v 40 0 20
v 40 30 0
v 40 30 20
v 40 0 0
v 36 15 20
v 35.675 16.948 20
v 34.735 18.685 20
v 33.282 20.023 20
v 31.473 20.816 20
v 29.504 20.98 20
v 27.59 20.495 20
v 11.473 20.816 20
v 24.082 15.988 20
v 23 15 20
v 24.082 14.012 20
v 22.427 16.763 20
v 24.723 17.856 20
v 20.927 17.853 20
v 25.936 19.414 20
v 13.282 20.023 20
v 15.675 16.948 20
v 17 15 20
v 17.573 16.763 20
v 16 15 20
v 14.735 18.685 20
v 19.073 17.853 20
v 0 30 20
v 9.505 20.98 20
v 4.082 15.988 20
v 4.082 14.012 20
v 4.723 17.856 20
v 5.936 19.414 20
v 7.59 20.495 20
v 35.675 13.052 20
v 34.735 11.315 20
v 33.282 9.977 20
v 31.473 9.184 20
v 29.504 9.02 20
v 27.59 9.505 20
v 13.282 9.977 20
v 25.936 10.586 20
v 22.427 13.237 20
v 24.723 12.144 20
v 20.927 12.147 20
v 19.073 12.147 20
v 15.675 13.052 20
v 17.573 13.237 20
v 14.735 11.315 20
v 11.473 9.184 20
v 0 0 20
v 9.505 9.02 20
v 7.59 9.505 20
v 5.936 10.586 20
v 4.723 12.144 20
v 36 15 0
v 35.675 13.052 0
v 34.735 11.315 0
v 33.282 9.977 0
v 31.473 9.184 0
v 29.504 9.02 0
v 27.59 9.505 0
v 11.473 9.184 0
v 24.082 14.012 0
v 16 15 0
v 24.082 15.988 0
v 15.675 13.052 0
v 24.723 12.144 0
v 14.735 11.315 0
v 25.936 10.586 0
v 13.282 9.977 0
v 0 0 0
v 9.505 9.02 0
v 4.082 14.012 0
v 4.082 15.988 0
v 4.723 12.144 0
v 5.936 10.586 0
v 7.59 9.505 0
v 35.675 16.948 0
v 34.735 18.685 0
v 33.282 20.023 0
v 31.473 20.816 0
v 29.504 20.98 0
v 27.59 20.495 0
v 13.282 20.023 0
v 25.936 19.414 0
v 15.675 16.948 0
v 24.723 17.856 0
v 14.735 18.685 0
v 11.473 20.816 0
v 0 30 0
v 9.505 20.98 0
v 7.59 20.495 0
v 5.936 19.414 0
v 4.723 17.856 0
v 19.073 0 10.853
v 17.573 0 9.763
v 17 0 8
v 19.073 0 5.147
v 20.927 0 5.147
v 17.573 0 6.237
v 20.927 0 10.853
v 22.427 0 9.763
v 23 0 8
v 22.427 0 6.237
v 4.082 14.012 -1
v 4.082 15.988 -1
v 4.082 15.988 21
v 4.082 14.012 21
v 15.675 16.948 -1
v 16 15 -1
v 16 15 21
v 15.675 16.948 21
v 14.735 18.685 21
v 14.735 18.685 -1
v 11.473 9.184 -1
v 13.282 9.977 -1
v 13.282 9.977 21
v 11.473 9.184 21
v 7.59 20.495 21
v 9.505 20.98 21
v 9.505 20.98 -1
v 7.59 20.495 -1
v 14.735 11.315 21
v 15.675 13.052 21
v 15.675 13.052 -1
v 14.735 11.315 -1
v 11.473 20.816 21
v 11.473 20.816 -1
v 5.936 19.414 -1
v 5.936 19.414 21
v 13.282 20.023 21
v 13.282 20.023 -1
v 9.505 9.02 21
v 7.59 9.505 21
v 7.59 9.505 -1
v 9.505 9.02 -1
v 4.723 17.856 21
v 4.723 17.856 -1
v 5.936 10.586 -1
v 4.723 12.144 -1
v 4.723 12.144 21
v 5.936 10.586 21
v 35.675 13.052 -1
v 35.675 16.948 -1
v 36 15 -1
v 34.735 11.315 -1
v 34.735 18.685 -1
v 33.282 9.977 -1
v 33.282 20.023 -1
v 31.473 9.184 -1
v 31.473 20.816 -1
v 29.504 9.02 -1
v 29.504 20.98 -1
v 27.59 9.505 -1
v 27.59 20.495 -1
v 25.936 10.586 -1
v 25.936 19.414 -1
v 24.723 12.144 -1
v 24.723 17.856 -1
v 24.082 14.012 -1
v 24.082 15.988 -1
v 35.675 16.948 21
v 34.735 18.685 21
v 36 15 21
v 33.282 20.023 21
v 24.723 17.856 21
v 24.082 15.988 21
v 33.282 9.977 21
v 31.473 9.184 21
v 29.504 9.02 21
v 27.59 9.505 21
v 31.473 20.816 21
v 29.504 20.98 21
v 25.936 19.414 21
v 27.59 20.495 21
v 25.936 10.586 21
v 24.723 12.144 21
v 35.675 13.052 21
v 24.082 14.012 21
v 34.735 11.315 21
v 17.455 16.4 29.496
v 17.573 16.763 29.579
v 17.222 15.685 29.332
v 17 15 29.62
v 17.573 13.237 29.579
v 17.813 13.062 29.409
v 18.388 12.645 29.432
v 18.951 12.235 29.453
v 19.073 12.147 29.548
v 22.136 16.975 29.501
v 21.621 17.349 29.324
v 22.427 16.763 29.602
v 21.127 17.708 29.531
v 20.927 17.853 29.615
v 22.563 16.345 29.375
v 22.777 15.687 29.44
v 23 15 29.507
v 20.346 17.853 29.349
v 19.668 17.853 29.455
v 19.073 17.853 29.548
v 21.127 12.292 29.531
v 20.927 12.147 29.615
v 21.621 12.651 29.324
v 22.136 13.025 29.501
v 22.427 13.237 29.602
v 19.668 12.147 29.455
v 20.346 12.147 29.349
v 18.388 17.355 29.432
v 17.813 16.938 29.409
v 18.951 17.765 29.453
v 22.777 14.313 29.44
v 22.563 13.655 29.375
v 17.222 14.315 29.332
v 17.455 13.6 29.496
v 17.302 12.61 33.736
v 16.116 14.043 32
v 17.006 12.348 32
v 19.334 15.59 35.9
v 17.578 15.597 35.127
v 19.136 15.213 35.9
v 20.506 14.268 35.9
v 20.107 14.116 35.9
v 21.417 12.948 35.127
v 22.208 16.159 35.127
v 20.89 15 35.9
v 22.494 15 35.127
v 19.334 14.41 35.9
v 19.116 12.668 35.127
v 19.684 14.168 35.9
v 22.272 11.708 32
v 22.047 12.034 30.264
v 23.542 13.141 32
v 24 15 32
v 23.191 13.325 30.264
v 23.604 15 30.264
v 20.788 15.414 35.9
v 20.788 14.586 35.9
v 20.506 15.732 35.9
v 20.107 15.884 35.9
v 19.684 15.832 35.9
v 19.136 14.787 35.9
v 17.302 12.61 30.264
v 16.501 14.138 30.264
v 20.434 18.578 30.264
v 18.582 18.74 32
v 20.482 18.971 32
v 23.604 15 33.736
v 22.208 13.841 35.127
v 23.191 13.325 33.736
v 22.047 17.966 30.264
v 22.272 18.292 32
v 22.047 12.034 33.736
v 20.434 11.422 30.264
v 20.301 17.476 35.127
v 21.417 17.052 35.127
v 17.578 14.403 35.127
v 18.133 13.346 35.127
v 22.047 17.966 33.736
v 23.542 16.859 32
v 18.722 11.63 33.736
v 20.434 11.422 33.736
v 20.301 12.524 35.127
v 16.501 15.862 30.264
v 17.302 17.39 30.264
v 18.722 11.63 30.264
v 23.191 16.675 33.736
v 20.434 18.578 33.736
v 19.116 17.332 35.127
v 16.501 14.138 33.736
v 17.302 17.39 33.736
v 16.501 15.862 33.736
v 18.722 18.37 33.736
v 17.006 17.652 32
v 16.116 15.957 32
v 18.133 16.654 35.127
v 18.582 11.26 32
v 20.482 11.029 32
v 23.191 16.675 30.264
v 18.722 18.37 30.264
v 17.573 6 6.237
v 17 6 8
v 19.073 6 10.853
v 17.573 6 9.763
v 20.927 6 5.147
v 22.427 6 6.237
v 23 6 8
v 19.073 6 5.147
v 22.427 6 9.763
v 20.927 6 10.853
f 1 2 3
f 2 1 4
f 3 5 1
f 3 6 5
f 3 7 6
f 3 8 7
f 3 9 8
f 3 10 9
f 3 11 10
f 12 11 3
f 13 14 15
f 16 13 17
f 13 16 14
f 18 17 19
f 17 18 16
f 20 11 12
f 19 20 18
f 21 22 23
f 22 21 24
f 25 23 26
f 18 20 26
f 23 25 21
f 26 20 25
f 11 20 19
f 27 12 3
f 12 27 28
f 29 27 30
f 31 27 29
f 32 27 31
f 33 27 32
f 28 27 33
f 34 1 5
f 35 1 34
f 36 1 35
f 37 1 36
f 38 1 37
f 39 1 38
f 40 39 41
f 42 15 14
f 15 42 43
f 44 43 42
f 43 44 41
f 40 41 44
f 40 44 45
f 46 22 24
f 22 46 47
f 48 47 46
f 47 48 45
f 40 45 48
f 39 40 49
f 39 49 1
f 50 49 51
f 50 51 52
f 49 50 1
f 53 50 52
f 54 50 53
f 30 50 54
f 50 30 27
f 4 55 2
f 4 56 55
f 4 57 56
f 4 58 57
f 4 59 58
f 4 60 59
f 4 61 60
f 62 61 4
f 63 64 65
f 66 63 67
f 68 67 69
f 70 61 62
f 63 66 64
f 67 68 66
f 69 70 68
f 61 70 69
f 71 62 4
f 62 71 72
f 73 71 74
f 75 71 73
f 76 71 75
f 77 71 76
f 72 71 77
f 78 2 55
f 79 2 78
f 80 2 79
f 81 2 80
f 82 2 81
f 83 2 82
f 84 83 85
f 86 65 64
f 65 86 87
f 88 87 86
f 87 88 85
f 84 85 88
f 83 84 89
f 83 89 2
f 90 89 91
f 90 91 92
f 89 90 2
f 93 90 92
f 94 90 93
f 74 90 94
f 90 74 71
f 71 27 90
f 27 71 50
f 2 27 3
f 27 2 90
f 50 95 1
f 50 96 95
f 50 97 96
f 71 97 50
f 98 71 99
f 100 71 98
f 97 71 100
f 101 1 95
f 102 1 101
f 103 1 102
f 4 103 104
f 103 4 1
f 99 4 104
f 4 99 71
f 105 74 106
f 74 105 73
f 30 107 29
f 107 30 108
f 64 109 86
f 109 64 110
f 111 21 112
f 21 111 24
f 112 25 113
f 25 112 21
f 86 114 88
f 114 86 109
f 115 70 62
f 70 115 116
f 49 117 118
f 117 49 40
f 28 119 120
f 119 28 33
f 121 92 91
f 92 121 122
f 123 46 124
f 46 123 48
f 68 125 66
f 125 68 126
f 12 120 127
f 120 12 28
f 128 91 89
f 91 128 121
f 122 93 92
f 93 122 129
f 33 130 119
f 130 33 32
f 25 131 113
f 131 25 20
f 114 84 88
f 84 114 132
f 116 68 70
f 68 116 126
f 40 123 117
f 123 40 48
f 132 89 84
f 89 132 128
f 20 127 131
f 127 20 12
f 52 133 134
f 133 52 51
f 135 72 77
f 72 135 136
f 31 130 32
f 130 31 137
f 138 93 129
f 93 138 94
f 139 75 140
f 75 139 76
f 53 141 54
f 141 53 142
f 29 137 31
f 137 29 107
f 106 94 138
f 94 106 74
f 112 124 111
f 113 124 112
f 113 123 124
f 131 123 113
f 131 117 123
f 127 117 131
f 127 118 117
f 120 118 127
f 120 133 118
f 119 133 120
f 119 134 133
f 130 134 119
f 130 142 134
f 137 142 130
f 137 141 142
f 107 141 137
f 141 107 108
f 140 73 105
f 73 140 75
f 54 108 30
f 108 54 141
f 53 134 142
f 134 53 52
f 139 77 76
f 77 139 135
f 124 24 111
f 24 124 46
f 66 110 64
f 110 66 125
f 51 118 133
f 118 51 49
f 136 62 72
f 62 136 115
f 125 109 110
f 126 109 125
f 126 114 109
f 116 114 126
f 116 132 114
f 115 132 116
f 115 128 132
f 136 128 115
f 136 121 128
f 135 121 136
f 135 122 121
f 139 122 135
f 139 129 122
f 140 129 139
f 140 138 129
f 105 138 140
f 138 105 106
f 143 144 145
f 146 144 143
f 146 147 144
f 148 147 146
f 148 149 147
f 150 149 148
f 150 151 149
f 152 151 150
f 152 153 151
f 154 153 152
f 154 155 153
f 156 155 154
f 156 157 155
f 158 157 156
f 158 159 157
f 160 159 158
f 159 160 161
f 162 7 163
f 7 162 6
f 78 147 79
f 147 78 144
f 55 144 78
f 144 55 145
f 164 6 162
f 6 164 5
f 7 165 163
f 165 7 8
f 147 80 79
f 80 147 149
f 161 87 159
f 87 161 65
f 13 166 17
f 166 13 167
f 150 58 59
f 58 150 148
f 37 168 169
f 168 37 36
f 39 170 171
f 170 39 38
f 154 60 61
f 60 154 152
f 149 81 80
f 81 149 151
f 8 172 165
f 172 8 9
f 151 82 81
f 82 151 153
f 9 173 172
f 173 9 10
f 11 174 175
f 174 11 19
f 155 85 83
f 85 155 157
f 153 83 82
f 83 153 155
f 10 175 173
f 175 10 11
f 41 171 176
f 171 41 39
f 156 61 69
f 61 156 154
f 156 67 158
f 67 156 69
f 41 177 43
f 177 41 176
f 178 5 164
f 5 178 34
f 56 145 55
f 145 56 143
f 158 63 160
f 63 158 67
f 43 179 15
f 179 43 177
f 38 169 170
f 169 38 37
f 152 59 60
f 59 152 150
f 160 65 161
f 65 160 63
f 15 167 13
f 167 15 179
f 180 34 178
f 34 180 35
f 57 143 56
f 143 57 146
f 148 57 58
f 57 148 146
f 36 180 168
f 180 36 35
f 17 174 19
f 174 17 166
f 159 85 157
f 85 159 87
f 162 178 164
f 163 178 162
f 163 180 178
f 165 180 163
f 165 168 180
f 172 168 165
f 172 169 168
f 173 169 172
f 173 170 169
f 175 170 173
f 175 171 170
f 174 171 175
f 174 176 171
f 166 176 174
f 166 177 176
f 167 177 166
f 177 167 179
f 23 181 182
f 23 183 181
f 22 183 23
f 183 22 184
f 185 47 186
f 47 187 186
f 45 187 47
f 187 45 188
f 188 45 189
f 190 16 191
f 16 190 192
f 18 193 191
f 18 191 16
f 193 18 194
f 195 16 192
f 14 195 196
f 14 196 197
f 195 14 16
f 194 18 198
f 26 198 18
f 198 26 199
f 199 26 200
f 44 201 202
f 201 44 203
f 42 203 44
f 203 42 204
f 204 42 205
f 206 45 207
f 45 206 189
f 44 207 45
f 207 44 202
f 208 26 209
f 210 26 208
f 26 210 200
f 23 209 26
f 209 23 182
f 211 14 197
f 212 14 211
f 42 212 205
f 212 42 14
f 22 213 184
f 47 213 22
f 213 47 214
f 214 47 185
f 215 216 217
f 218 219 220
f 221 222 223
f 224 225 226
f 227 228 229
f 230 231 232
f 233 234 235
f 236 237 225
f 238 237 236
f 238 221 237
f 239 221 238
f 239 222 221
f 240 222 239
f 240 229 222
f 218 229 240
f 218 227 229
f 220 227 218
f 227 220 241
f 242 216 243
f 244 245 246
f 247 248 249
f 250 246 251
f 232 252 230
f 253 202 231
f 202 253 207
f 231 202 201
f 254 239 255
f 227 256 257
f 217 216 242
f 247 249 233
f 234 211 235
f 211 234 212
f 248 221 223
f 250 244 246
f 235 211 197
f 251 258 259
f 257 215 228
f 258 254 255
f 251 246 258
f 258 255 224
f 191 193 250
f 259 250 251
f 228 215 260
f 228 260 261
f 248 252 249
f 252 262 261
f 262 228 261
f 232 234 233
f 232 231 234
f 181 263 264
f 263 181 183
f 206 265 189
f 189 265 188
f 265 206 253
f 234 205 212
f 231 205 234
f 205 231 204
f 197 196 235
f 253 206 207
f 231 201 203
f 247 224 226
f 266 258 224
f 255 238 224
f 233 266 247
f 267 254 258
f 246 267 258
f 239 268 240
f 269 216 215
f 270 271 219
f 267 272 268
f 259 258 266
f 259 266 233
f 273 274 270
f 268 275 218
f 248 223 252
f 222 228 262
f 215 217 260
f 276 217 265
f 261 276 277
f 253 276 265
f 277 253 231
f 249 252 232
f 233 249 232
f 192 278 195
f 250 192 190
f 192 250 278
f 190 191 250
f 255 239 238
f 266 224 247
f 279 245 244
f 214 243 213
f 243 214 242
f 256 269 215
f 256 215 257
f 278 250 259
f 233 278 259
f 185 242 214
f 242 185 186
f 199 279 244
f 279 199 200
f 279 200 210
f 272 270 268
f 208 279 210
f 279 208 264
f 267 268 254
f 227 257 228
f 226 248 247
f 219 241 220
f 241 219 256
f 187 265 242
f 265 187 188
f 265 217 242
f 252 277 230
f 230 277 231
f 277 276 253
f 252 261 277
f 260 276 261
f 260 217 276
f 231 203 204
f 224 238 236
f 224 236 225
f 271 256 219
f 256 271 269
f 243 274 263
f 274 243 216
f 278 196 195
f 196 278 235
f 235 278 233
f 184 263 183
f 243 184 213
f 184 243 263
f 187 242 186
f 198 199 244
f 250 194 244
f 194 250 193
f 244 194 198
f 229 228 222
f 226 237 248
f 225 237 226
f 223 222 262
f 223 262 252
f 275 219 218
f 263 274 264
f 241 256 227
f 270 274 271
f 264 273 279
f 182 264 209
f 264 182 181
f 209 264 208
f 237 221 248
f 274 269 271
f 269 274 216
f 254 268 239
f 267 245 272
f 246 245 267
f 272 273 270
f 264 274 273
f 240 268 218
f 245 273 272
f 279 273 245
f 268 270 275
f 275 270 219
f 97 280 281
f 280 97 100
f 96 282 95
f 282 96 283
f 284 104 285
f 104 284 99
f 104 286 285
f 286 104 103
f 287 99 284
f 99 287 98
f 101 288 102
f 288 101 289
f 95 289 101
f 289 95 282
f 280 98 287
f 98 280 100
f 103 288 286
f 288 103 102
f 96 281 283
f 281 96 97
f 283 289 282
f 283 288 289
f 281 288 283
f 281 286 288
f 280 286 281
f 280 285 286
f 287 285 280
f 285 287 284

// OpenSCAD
// Robot Head Keychain - Odin's 3D Prints
// Cute simple robot head for keychain

module robot_head() {
    // Head - main box
    cube([40, 30, 20], center=false);
    
    // Left eye
    translate([10, 15, -1])
    cylinder(h=22, r=6, center=false);
    
    // Right eye
    translate([30, 15, -1])
    cylinder(h=22, r=6, center=false);
    
    // Antenna
    translate([20, 15, 20])
    cylinder(h=12, r=3, center=false);
    translate([20, 15, 32])
    sphere(r=4);
}

module keychain_hole() {
    // Keychain hole at top
    translate([20, -2, 8])
    rotate([-90, 0, 0])
    cylinder(h=8, r=3, center=false);
}

difference() {
    robot_head();
    keychain_hole();
}
